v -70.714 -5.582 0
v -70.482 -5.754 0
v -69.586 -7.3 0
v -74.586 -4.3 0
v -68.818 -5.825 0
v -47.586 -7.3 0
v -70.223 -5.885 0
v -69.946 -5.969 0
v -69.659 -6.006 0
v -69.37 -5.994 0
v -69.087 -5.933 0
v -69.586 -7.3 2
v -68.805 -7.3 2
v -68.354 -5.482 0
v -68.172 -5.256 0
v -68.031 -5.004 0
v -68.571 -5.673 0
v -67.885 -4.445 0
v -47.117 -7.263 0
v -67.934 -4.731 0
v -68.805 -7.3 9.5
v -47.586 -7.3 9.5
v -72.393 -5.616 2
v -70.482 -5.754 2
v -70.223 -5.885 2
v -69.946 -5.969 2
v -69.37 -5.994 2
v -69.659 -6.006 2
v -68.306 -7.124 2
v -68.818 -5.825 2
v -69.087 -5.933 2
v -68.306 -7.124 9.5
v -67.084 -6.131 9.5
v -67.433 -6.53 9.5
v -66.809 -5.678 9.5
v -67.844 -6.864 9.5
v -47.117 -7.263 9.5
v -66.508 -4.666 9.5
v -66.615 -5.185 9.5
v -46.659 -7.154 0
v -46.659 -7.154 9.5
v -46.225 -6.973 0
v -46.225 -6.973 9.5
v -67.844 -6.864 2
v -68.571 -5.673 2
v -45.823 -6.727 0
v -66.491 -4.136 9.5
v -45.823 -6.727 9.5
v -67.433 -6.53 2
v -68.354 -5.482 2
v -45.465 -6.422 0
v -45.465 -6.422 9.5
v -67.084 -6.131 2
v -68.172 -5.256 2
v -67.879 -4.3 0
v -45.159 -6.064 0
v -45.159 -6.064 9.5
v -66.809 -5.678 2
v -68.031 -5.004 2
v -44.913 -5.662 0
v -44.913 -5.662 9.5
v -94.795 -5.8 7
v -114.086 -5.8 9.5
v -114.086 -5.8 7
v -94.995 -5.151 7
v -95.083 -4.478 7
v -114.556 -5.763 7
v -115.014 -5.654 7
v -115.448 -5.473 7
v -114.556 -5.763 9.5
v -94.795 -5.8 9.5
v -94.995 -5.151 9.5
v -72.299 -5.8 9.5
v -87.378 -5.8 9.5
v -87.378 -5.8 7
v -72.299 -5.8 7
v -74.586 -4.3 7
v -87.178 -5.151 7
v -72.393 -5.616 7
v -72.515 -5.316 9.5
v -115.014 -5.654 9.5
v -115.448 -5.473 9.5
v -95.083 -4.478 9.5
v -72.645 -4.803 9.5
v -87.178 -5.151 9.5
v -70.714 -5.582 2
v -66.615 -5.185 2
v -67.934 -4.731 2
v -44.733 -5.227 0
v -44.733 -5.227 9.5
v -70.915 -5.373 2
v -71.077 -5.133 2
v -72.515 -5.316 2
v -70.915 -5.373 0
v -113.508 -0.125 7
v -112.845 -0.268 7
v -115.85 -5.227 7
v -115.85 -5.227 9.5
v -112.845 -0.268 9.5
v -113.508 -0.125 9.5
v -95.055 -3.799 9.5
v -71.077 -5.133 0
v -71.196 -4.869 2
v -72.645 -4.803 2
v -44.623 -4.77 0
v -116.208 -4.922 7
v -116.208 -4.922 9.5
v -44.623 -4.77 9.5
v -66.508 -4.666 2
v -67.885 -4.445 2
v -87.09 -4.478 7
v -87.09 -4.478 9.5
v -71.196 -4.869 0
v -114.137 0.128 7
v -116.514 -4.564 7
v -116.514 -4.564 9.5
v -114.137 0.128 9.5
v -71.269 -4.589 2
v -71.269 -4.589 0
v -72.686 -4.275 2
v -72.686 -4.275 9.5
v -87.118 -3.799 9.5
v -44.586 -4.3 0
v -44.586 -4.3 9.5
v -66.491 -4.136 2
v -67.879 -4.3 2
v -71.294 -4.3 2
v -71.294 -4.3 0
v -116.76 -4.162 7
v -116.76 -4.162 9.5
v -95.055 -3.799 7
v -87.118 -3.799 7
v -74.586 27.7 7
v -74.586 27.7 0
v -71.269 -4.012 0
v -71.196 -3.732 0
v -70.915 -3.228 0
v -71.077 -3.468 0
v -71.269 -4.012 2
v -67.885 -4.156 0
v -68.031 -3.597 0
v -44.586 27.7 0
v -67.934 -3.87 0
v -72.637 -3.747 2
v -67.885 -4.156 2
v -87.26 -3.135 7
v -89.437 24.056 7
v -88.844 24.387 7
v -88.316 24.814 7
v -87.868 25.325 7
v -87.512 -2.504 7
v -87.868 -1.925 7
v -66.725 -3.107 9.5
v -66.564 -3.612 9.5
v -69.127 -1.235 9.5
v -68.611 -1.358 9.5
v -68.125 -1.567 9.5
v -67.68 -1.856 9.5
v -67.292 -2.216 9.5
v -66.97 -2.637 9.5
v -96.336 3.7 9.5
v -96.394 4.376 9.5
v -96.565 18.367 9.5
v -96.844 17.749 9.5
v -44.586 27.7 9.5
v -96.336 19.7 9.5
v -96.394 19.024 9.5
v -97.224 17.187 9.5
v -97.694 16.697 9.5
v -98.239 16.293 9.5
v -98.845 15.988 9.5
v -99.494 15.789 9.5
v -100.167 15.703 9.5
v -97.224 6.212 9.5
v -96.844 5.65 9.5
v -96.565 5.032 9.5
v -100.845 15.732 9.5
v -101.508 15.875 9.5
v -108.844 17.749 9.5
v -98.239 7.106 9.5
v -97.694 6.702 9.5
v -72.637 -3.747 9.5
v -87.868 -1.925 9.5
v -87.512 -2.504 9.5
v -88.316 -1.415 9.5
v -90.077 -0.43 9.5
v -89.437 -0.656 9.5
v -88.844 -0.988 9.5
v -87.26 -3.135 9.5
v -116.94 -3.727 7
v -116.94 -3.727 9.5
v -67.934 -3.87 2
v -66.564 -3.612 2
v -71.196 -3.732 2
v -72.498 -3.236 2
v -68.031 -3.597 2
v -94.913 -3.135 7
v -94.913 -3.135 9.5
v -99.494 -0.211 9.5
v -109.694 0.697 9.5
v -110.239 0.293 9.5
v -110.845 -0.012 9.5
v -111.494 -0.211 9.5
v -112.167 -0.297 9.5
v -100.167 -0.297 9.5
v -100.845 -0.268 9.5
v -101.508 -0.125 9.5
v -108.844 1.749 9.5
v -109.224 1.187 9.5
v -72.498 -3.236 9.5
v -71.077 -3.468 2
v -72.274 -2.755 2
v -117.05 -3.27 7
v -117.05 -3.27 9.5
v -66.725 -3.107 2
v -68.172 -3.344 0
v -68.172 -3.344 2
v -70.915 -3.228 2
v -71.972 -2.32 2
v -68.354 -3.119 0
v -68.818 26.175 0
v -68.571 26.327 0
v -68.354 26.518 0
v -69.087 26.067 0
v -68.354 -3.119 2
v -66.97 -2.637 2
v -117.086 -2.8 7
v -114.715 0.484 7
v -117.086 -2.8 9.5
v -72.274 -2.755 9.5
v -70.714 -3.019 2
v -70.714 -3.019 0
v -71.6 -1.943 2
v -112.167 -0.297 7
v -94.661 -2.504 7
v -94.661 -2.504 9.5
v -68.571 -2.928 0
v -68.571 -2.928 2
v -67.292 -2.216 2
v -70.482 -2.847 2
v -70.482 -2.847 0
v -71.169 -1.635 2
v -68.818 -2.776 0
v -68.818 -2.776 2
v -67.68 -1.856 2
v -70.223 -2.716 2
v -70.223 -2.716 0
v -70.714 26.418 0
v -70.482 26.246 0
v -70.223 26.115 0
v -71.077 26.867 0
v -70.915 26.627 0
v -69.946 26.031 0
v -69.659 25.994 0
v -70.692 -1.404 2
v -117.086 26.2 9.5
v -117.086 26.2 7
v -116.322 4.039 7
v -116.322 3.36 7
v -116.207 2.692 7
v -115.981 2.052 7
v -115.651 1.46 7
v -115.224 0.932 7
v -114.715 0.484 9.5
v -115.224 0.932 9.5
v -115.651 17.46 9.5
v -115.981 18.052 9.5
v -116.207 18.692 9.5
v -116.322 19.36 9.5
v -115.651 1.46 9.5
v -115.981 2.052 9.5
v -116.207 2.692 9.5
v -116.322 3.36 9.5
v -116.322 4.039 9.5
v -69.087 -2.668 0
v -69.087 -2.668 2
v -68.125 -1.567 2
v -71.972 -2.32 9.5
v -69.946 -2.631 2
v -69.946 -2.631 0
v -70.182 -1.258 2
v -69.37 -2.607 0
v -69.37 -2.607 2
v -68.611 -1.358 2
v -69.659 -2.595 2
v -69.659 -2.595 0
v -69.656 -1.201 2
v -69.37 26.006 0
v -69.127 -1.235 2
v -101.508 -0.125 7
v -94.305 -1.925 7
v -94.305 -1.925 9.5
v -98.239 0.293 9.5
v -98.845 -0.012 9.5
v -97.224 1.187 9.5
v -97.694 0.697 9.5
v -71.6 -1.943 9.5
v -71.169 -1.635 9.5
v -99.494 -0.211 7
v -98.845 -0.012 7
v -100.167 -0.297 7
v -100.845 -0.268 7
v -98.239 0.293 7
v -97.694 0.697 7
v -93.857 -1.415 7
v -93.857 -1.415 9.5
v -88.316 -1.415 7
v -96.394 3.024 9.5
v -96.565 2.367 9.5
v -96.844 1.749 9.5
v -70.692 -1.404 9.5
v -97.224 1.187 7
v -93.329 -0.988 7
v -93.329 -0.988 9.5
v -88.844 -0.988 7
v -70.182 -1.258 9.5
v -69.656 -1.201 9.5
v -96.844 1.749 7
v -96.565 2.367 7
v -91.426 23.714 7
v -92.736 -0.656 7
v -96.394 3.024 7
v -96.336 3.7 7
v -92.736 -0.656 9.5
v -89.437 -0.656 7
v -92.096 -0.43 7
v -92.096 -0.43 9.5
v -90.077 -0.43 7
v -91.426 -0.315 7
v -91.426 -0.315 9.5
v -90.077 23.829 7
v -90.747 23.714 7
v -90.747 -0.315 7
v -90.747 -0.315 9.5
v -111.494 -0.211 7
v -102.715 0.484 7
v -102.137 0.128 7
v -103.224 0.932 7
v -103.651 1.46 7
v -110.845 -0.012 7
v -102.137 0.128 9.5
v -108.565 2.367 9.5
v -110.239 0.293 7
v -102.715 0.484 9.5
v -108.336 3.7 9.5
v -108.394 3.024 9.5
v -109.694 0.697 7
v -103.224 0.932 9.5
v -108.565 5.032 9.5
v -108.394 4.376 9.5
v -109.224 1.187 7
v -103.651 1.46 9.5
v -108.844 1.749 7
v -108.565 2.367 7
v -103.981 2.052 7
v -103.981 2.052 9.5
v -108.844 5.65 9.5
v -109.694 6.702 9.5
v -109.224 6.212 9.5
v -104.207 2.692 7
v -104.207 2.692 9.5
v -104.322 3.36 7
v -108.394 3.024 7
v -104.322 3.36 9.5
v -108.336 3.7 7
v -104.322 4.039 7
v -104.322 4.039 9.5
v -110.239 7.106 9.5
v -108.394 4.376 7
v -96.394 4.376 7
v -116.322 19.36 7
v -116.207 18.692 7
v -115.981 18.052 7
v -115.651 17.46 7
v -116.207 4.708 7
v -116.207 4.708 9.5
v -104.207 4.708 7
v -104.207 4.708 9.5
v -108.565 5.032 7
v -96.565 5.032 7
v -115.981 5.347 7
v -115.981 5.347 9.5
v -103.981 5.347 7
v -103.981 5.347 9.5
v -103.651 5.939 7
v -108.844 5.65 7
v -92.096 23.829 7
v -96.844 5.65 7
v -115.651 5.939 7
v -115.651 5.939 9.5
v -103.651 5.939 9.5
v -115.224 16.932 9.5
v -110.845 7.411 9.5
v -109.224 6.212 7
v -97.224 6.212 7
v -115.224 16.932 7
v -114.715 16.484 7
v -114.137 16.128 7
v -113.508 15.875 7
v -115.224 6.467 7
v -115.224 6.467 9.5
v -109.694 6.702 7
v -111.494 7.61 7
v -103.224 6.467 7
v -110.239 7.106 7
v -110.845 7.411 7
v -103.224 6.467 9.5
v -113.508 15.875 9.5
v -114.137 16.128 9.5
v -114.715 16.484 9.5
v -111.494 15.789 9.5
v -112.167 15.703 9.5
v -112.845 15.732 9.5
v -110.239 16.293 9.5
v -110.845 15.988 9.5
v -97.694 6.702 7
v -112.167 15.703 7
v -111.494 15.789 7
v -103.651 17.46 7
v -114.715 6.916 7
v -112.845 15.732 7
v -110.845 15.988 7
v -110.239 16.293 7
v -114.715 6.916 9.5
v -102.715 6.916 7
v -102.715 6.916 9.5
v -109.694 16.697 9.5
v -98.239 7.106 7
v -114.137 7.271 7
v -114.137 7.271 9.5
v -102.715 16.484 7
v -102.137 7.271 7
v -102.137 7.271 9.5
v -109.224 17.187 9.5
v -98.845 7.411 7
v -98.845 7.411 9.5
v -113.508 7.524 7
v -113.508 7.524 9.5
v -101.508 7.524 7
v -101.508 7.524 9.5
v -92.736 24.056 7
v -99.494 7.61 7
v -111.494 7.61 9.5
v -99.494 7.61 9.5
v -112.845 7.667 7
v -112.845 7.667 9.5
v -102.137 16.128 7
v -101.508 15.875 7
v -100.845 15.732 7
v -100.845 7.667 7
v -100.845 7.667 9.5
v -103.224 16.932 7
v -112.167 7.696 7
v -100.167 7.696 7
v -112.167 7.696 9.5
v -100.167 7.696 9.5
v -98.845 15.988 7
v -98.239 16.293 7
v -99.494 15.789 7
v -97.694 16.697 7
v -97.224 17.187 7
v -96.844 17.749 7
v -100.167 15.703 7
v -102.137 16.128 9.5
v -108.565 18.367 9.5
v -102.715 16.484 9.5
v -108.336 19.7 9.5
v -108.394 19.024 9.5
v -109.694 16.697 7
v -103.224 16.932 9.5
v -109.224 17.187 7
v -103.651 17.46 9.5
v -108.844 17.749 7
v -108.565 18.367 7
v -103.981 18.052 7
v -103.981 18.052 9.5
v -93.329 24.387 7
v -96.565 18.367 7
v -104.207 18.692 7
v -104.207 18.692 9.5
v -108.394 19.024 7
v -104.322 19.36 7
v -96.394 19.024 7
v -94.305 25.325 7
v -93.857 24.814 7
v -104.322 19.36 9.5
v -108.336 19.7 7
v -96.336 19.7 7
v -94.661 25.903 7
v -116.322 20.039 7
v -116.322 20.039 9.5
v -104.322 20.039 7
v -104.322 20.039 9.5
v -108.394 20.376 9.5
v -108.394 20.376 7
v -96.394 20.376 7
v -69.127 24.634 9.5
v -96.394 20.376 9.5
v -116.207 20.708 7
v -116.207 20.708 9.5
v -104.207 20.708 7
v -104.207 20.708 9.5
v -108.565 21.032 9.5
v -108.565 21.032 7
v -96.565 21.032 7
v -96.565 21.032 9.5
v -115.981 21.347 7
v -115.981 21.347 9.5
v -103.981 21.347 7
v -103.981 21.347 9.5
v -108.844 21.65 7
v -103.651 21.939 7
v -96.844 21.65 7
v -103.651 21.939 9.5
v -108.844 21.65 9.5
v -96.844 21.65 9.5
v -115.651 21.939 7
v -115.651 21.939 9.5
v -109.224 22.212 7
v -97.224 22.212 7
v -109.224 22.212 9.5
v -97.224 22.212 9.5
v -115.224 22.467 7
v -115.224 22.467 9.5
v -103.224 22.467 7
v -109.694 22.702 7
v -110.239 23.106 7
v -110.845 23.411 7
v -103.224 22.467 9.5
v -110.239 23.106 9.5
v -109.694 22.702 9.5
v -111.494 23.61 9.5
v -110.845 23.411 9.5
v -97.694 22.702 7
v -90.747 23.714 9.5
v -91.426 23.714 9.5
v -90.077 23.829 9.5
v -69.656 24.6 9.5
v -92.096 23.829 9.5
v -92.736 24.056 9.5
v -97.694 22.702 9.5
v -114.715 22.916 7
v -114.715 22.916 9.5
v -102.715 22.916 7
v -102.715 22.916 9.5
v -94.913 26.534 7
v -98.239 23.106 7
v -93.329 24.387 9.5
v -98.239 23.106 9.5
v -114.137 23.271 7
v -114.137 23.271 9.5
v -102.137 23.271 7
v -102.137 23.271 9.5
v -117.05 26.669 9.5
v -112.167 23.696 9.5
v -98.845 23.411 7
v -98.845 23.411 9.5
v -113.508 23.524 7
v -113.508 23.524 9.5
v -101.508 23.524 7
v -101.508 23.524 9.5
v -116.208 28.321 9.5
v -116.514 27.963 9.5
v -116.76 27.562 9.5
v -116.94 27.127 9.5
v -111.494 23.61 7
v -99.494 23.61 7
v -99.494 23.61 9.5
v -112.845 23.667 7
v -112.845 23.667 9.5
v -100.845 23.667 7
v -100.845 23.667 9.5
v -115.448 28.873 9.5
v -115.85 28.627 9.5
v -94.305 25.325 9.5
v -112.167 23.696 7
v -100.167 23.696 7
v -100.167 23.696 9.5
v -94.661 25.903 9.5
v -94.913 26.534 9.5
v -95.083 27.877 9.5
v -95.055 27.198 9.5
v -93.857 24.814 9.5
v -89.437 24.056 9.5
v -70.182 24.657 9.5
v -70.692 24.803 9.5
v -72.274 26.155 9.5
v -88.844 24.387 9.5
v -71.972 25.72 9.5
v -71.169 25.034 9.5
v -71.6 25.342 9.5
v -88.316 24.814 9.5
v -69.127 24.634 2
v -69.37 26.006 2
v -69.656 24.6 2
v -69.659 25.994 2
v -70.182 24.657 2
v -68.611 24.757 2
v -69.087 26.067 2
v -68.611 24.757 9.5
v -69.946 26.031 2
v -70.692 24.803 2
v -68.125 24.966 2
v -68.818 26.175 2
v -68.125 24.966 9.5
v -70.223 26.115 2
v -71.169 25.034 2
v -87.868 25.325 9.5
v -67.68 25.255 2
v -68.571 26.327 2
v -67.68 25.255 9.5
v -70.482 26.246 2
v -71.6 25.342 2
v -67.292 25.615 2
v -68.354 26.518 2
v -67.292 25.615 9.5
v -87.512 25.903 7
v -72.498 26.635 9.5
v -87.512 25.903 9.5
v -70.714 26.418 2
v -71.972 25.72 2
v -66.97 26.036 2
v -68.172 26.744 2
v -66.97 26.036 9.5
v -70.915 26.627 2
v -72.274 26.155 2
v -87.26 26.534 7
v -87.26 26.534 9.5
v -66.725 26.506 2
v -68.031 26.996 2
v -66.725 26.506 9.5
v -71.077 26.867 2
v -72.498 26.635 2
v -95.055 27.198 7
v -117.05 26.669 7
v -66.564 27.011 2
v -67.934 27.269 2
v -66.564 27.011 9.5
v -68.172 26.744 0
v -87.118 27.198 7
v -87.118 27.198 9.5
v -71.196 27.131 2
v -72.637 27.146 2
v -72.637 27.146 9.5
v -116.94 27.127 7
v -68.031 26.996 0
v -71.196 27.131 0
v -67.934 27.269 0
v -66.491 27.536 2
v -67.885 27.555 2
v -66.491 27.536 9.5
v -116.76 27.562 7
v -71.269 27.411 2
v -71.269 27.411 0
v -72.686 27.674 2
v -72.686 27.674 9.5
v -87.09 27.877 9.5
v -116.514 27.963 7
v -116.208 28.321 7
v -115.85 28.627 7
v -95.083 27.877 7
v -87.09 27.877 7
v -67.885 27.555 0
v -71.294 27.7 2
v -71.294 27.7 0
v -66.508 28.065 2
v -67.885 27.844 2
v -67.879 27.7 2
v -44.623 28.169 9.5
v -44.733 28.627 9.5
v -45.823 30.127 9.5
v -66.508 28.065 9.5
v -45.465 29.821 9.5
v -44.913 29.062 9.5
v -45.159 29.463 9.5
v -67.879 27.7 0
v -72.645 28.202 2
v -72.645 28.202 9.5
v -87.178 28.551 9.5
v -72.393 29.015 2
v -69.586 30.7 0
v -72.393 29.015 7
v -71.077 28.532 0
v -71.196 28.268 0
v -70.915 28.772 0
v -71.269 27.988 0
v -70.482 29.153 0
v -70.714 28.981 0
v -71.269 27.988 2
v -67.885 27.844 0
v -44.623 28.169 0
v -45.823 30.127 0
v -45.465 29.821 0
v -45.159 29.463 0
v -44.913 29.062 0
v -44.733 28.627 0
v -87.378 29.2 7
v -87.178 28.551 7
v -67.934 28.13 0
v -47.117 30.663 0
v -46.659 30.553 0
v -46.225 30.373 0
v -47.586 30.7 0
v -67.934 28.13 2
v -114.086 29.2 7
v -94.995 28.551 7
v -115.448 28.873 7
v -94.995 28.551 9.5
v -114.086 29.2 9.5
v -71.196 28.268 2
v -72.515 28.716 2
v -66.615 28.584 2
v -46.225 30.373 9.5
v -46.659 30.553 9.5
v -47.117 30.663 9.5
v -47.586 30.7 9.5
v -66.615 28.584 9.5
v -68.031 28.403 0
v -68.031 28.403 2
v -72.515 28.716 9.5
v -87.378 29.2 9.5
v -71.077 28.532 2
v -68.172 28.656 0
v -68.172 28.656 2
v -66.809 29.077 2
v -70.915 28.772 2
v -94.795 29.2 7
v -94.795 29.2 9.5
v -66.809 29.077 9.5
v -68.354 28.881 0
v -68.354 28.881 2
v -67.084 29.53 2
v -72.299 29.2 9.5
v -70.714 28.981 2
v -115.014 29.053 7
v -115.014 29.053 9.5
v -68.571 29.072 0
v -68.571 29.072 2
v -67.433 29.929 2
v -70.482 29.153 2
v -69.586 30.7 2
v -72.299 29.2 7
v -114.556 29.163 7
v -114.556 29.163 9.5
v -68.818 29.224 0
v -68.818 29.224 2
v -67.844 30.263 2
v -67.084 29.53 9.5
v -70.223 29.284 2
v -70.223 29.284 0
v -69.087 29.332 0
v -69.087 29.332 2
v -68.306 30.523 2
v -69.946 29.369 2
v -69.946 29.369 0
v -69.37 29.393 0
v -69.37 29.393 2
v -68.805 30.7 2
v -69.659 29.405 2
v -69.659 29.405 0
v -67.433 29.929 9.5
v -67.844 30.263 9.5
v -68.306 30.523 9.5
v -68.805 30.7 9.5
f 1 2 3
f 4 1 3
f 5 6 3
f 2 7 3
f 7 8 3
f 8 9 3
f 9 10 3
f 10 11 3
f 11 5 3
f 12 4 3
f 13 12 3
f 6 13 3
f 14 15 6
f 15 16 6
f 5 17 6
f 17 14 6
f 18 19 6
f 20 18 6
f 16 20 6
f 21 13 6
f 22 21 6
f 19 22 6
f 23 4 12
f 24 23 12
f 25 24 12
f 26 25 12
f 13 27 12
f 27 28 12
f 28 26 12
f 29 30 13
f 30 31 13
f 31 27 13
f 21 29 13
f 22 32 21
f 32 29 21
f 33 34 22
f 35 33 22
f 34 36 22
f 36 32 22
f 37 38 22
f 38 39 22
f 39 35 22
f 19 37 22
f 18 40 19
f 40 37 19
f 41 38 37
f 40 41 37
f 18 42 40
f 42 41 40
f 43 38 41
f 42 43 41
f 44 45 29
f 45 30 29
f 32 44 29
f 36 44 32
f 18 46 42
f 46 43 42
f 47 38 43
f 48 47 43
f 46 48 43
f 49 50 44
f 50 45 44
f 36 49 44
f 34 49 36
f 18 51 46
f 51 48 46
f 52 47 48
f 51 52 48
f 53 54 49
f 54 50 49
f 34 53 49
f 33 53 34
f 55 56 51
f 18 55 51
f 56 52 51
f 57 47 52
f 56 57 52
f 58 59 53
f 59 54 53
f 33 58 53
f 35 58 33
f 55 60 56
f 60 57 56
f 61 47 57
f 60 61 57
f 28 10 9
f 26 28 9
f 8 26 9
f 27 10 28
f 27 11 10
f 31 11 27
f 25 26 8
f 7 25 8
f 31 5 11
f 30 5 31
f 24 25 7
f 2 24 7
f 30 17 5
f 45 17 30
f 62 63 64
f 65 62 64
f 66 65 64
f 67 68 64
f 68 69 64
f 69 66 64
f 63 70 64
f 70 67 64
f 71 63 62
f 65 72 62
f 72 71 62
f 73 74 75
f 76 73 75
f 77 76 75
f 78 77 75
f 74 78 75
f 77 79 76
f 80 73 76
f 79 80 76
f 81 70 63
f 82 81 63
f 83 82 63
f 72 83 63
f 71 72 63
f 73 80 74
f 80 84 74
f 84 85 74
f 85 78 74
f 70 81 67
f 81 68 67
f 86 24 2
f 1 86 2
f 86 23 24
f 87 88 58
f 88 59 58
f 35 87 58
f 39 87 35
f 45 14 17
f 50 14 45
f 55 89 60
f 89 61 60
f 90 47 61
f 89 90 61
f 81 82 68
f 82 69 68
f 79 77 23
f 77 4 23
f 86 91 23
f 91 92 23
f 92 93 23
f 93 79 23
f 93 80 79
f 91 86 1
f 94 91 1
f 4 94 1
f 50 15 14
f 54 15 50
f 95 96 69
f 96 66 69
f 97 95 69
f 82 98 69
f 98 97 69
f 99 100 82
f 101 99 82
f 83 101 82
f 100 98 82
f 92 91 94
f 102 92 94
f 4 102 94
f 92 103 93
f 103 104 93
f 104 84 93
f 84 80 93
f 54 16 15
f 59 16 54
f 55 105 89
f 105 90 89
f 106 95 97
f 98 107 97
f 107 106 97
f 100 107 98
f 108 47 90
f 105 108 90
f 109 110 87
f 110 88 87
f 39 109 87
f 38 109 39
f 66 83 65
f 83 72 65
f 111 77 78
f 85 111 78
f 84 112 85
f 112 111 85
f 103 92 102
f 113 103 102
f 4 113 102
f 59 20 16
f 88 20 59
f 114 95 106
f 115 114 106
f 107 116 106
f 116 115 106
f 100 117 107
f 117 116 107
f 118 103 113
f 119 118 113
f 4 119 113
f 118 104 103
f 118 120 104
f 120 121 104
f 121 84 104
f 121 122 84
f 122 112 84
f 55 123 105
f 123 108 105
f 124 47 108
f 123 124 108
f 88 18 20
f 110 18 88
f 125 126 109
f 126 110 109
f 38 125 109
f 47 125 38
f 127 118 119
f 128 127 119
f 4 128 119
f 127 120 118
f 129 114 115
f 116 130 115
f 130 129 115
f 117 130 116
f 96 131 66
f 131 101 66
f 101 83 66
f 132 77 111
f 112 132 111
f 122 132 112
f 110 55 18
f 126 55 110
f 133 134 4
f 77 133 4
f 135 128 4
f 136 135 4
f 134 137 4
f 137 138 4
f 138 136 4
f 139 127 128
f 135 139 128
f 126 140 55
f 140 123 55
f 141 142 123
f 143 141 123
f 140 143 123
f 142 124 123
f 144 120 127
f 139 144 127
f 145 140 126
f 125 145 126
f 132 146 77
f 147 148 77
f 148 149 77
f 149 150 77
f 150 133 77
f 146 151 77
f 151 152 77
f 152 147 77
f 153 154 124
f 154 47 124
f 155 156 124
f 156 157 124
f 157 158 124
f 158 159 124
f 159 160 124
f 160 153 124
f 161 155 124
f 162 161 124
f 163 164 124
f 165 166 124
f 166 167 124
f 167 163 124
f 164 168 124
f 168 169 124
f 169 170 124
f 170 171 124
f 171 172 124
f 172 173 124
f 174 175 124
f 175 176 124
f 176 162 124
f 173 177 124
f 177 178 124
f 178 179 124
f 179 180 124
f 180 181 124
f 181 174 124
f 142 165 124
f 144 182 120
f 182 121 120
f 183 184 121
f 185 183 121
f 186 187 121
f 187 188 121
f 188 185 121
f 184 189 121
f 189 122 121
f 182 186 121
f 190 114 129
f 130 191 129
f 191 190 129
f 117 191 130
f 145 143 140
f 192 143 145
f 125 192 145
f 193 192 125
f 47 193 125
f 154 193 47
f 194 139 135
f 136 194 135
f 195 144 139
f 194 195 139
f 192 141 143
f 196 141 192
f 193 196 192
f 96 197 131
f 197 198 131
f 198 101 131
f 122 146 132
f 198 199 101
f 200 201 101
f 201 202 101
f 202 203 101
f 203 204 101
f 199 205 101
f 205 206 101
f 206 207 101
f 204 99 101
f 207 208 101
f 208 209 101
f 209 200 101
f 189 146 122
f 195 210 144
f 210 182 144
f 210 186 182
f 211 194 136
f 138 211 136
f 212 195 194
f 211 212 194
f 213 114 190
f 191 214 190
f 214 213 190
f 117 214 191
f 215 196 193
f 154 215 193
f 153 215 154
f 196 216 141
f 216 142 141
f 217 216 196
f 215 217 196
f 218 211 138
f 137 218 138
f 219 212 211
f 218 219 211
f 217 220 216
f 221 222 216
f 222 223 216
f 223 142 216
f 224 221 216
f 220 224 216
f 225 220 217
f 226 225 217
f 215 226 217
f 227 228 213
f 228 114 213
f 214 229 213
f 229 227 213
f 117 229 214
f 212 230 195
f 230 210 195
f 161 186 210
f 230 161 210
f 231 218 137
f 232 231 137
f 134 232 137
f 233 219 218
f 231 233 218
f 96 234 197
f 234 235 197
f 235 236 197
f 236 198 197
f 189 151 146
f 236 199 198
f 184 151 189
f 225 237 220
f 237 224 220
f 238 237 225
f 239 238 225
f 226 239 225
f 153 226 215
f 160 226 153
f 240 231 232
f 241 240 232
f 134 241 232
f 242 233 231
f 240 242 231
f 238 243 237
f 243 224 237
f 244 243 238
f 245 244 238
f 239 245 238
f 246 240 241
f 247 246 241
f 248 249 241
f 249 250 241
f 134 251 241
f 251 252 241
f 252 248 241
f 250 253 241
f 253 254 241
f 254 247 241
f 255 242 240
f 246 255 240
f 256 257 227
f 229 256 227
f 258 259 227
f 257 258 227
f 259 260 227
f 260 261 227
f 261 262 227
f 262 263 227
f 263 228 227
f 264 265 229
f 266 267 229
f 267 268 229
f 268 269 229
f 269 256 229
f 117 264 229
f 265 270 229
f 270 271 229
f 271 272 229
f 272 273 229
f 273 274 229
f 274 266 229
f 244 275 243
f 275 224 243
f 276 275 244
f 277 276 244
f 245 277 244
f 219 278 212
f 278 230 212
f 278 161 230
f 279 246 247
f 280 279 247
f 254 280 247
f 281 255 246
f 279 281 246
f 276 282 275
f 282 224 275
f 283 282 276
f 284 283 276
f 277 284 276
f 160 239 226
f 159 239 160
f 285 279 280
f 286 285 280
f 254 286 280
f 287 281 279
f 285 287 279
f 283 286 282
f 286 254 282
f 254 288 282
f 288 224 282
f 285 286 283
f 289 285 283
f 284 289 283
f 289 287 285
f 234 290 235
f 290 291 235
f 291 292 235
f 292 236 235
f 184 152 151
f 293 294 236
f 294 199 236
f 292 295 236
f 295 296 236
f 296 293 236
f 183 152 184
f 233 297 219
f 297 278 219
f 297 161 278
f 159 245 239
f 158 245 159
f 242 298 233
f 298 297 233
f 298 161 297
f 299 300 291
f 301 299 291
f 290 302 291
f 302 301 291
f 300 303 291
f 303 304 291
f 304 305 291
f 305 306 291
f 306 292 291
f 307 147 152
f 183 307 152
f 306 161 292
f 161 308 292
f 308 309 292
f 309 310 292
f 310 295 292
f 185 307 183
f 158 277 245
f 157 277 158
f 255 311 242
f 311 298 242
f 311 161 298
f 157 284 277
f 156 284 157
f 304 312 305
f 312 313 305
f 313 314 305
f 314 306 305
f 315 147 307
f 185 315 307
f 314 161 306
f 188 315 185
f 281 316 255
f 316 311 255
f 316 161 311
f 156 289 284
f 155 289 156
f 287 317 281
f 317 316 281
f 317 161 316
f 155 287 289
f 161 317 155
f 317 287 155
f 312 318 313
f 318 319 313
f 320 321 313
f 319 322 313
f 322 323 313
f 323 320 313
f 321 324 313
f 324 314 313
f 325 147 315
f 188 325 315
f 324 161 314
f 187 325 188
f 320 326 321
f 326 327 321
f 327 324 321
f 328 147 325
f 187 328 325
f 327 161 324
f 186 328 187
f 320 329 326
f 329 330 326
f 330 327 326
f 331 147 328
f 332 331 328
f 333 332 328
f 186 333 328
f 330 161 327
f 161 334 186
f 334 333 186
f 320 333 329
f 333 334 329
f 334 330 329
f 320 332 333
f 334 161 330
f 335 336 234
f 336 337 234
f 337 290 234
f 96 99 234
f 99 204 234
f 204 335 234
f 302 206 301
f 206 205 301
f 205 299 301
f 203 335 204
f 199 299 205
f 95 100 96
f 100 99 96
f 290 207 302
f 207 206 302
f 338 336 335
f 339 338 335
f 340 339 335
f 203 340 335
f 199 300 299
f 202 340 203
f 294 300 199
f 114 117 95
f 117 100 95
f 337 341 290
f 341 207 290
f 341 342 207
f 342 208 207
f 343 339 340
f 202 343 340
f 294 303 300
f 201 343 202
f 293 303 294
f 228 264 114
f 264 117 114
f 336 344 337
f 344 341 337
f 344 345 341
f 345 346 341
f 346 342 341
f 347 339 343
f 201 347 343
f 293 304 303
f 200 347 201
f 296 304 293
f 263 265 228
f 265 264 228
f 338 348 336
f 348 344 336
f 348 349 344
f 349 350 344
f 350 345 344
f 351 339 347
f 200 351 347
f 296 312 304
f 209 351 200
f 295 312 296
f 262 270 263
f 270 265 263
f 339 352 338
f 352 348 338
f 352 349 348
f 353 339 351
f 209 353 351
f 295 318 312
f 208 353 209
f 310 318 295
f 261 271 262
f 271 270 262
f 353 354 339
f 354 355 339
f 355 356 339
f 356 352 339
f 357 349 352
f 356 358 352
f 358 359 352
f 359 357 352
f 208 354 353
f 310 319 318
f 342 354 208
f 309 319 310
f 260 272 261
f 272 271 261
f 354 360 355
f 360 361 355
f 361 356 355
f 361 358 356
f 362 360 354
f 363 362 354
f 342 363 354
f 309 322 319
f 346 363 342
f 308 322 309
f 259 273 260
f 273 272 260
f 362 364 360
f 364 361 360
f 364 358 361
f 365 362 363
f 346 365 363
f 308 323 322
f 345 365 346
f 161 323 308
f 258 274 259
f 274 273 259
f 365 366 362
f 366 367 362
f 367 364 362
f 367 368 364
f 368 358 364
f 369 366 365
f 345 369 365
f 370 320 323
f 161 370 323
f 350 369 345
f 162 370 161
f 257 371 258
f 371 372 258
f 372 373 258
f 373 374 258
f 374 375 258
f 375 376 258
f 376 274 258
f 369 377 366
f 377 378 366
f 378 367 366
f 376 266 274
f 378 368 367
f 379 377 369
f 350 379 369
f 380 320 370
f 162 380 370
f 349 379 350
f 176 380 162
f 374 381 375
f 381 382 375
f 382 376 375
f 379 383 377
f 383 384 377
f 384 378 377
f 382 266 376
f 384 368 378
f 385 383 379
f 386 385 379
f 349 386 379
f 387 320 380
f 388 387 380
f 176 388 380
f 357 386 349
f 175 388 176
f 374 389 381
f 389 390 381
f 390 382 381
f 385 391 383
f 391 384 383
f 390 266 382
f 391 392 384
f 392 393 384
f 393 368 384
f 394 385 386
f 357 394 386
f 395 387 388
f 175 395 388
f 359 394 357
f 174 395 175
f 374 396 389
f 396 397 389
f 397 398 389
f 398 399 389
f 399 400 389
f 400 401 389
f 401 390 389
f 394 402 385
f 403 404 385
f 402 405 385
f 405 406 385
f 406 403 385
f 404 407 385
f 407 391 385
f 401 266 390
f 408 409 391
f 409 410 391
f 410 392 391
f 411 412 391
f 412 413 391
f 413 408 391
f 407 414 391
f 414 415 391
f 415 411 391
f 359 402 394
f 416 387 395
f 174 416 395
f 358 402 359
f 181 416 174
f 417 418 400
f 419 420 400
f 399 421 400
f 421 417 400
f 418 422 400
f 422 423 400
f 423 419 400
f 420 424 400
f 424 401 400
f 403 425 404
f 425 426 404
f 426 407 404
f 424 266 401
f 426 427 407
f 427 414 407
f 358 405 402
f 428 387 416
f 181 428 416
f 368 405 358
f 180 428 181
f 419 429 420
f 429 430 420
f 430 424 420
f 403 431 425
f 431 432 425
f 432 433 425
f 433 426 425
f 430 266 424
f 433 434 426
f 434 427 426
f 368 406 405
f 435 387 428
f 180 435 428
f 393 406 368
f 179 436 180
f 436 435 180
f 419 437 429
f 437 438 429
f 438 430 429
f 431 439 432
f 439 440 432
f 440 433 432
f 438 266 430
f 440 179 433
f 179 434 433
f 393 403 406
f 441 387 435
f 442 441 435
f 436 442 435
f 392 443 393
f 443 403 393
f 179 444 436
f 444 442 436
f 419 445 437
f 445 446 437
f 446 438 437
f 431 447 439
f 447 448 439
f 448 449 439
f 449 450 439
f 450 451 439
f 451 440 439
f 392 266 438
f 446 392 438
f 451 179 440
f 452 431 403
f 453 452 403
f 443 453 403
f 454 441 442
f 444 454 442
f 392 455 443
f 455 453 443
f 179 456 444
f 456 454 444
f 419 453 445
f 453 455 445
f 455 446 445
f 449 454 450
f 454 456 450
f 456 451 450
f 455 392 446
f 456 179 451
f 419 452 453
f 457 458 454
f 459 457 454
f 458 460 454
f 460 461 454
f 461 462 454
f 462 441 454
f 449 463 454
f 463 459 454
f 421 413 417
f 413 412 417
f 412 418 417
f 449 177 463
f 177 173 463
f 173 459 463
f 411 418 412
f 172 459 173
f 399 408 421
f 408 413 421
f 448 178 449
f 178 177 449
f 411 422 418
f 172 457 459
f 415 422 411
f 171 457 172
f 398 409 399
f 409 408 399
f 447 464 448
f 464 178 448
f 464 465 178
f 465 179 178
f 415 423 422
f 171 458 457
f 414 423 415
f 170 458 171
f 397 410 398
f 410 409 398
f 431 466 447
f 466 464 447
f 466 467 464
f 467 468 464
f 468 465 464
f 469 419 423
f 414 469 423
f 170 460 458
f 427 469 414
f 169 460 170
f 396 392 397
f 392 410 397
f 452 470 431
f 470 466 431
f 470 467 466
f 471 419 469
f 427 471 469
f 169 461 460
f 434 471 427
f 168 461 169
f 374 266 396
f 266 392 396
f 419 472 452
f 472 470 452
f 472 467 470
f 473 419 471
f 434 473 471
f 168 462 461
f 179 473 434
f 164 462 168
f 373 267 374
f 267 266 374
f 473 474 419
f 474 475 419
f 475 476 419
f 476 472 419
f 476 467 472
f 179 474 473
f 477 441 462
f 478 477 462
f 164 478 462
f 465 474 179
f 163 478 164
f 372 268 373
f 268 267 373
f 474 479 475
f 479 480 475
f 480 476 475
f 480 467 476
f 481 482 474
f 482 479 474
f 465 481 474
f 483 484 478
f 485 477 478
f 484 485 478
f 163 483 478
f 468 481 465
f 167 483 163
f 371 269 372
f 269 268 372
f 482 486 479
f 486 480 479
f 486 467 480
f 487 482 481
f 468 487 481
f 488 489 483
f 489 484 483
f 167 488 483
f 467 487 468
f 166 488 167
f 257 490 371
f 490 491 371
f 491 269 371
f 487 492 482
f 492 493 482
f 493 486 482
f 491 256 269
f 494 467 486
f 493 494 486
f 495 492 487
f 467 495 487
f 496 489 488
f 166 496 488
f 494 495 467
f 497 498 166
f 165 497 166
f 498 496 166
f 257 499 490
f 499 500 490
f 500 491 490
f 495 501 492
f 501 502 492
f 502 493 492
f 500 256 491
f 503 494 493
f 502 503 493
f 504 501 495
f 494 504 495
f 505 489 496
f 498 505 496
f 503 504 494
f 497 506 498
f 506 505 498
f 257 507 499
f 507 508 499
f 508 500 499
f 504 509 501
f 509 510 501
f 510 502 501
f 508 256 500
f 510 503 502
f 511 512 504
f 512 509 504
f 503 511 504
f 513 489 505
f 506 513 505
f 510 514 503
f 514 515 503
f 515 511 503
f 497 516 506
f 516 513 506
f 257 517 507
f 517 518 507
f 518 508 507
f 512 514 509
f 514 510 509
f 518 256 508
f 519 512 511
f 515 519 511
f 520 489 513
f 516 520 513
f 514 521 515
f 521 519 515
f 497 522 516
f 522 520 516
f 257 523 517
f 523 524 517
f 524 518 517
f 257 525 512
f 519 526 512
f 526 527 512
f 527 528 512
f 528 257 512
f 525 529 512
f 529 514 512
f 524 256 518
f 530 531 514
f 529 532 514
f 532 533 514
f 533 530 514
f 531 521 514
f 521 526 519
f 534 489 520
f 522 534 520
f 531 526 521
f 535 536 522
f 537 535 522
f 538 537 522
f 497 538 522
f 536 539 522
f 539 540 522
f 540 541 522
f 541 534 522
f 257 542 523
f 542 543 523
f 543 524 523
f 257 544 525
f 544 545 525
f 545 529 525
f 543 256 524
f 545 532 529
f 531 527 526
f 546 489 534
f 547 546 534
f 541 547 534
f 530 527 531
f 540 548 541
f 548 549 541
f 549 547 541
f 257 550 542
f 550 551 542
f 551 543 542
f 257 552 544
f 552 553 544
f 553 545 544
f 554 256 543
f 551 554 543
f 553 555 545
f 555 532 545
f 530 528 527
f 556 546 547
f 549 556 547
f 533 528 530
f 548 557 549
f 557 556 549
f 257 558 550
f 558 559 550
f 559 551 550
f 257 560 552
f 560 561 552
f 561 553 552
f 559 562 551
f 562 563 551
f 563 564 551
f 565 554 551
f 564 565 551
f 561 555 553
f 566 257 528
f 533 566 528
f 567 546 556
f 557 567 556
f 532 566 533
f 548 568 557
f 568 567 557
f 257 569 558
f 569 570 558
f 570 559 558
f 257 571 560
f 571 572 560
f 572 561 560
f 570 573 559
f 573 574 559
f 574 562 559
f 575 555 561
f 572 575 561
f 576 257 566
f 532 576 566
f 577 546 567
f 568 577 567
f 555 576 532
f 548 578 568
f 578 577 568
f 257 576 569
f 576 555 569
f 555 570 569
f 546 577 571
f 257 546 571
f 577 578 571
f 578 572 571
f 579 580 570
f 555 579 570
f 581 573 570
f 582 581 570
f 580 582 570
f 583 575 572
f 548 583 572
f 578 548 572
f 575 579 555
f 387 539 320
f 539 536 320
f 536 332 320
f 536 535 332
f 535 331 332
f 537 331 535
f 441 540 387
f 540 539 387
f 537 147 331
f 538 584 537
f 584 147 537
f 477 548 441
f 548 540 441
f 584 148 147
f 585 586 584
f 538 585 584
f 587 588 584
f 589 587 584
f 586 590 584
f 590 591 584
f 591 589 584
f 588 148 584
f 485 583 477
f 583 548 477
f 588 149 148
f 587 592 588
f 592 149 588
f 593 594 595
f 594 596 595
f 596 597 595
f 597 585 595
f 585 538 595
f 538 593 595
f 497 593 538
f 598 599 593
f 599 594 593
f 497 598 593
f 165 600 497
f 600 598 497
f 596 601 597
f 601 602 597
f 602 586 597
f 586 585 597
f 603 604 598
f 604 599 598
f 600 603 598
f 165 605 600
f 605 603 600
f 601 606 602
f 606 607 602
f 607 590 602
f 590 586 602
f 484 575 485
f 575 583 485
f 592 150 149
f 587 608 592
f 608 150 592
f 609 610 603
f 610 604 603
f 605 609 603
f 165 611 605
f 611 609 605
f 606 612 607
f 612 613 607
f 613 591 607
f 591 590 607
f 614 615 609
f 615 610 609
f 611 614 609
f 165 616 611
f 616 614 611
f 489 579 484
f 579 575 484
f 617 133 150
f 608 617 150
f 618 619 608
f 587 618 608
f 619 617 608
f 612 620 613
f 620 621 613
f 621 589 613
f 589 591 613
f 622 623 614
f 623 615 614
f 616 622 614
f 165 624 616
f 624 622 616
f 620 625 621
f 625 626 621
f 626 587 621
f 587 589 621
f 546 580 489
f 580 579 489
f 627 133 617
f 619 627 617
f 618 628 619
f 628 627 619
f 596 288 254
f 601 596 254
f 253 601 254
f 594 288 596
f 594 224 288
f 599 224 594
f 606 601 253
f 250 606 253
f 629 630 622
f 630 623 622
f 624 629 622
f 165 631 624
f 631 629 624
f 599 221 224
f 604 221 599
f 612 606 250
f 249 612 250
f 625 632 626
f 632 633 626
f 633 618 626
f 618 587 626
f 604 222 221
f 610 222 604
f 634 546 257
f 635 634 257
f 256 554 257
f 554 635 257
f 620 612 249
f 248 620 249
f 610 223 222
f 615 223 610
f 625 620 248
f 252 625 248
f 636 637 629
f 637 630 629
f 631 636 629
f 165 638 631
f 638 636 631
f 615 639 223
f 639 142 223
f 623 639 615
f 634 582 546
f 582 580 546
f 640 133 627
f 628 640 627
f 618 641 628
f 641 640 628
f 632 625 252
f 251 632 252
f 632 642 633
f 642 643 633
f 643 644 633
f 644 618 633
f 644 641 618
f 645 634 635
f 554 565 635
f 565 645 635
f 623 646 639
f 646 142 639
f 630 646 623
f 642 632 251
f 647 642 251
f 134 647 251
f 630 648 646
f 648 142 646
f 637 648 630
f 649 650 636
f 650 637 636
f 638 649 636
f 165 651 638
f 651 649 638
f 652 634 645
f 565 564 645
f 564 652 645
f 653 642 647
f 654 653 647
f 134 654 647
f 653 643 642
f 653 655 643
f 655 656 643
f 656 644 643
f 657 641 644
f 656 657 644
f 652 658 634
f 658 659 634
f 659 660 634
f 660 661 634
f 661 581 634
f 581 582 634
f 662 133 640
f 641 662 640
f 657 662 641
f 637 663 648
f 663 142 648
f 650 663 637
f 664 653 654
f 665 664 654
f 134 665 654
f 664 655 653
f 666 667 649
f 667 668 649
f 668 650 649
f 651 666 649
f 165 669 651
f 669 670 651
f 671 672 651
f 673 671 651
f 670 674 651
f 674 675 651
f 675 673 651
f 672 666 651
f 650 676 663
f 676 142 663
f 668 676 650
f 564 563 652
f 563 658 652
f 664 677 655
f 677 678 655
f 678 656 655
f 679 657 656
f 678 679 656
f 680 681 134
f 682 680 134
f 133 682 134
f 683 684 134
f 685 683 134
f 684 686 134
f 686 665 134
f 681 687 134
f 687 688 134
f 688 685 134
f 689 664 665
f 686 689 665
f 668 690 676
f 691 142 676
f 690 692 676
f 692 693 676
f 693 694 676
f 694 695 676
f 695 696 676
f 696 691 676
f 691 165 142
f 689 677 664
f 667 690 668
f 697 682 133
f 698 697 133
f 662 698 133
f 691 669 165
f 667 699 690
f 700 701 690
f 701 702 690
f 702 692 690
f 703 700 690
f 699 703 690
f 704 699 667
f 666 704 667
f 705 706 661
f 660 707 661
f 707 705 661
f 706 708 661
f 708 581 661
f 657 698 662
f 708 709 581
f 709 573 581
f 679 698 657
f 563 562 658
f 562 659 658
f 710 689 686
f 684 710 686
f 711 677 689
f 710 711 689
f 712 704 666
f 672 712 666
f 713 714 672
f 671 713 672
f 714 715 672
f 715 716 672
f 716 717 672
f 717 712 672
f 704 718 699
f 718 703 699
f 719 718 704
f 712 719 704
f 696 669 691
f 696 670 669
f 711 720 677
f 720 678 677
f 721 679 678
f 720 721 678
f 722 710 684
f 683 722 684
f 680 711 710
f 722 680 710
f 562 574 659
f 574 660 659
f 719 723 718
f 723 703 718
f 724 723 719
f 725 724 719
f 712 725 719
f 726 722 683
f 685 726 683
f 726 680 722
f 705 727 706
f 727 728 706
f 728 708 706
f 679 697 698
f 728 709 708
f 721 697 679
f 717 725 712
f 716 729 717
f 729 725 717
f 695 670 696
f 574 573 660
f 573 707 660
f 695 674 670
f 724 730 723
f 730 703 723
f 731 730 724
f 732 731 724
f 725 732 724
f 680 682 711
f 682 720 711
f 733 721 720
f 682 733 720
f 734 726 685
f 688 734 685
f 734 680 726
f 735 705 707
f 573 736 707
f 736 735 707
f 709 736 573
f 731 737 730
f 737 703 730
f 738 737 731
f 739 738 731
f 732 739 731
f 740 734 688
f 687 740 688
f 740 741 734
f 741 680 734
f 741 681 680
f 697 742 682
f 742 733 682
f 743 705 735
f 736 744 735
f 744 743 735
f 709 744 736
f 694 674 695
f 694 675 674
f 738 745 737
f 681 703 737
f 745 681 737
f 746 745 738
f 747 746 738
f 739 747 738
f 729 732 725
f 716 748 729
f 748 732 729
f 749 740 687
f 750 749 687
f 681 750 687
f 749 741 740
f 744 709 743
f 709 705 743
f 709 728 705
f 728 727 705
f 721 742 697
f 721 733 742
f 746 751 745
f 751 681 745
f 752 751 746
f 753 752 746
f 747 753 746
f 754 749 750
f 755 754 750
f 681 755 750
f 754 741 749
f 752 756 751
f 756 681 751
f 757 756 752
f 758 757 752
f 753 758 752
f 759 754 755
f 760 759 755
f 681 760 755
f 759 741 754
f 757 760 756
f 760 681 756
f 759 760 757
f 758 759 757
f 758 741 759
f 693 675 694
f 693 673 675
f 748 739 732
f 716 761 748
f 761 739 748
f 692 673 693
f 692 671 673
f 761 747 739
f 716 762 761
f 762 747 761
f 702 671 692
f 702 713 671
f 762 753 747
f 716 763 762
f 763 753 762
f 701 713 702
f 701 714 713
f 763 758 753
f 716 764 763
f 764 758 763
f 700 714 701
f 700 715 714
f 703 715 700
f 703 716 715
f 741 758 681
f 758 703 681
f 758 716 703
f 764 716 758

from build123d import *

# Parameters (mm, degrees)
CROQUIS1_R              = 1.707370132
SALIENTE_EXTRUIR1_DEPTH = 9.5
SALIENTE_EXTRUIR2_DEPTH = 2.5
CROQUIS5_R              = 4
CROQUIS5_R_2            = 3.5
CORTAR_EXTRUIR1_DEPTH   = 2.5
REDONDEO1_R             = 3
CROQUIS6_R              = 3.1
CORTAR_EXTRUIR2_DEPTH   = 7.5


with BuildPart() as part:
    # Croquis1 → Saliente-Extruir1 (new body)
    with BuildSketch(Plane.XY):
        Polygon((-69.586479396, 30.699597615), (-44.586479396, 30.699597615), (-44.586479396, -7.300402385), (-69.586479396, -7.300402385), (-74.586479396, -4.300402385), (-74.586479396, 27.699597615), align=None)
        with Locations((-69.586479396, 27.699597615)):
            Circle(CROQUIS1_R, mode=Mode.SUBTRACT)
        with Locations((-69.586479396, -4.300402385)):
            Circle(CROQUIS1_R, mode=Mode.SUBTRACT)
    extrude(amount=SALIENTE_EXTRUIR1_DEPTH)

    # Croquis4 → Saliente-Extruir2 (add)
    with BuildSketch(Plane.XY.offset(9.5)):
        Polygon((-72.086479396, 29.199597615), (-117.086479396, 29.199597615), (-117.086479396, -5.800402385), (-72.086479396, -5.800402385), (-74.586479396, -4.300402385), (-74.586479396, 27.699597615), align=None)
    extrude(amount=-SALIENTE_EXTRUIR2_DEPTH)

    # Croquis5 → Cortar-Extruir1 (cut)
    with BuildSketch(Plane.XY.offset(9.5)):
        with Locations((-91.086479396, -4.300402385)):
            Circle(CROQUIS5_R)
        with Locations((-91.086479396, 27.699597615)):
            Circle(CROQUIS5_R)
        with Locations((-121.586479396, -4.300402385)):
            Circle(CROQUIS5_R_2)
        with Locations((-121.586479396, 27.699597615)):
            Circle(CROQUIS5_R_2)
        with Locations((-100.336479396, 19.699597615)):
            Circle(CROQUIS5_R)
        with Locations((-112.336479396, 19.699597615)):
            Circle(CROQUIS5_R)
        with Locations((-112.336479396, 3.699597615)):
            Circle(CROQUIS5_R)
        with Locations((-100.336479396, 3.699597615)):
            Circle(CROQUIS5_R)
    extrude(amount=-CORTAR_EXTRUIR1_DEPTH, mode=Mode.SUBTRACT)

    # Redondeo1
    redondeo1_edges = [part.edges().sort_by_distance(p)[0] for p in [
        (-44.586479396, 30.699597615, 4.75),
        (-44.586479396, -7.300402385, 4.75),
        (-117.086479396, -5.800402385, 8.25),
        (-117.086479396, 29.199597615, 8.25),
    ]]
    fillet(redondeo1_edges, radius=REDONDEO1_R)

    # Croquis6 → Cortar-Extruir2 (cut)
    with BuildSketch(Plane.XY.offset(9.5)):
        with Locations((-69.586479396, 27.699597615)):
            Circle(CROQUIS6_R)
        with Locations((-69.586479396, -4.300402385)):
            Circle(CROQUIS6_R)
    extrude(amount=-CORTAR_EXTRUIR2_DEPTH, mode=Mode.SUBTRACT)


solid = part.part
